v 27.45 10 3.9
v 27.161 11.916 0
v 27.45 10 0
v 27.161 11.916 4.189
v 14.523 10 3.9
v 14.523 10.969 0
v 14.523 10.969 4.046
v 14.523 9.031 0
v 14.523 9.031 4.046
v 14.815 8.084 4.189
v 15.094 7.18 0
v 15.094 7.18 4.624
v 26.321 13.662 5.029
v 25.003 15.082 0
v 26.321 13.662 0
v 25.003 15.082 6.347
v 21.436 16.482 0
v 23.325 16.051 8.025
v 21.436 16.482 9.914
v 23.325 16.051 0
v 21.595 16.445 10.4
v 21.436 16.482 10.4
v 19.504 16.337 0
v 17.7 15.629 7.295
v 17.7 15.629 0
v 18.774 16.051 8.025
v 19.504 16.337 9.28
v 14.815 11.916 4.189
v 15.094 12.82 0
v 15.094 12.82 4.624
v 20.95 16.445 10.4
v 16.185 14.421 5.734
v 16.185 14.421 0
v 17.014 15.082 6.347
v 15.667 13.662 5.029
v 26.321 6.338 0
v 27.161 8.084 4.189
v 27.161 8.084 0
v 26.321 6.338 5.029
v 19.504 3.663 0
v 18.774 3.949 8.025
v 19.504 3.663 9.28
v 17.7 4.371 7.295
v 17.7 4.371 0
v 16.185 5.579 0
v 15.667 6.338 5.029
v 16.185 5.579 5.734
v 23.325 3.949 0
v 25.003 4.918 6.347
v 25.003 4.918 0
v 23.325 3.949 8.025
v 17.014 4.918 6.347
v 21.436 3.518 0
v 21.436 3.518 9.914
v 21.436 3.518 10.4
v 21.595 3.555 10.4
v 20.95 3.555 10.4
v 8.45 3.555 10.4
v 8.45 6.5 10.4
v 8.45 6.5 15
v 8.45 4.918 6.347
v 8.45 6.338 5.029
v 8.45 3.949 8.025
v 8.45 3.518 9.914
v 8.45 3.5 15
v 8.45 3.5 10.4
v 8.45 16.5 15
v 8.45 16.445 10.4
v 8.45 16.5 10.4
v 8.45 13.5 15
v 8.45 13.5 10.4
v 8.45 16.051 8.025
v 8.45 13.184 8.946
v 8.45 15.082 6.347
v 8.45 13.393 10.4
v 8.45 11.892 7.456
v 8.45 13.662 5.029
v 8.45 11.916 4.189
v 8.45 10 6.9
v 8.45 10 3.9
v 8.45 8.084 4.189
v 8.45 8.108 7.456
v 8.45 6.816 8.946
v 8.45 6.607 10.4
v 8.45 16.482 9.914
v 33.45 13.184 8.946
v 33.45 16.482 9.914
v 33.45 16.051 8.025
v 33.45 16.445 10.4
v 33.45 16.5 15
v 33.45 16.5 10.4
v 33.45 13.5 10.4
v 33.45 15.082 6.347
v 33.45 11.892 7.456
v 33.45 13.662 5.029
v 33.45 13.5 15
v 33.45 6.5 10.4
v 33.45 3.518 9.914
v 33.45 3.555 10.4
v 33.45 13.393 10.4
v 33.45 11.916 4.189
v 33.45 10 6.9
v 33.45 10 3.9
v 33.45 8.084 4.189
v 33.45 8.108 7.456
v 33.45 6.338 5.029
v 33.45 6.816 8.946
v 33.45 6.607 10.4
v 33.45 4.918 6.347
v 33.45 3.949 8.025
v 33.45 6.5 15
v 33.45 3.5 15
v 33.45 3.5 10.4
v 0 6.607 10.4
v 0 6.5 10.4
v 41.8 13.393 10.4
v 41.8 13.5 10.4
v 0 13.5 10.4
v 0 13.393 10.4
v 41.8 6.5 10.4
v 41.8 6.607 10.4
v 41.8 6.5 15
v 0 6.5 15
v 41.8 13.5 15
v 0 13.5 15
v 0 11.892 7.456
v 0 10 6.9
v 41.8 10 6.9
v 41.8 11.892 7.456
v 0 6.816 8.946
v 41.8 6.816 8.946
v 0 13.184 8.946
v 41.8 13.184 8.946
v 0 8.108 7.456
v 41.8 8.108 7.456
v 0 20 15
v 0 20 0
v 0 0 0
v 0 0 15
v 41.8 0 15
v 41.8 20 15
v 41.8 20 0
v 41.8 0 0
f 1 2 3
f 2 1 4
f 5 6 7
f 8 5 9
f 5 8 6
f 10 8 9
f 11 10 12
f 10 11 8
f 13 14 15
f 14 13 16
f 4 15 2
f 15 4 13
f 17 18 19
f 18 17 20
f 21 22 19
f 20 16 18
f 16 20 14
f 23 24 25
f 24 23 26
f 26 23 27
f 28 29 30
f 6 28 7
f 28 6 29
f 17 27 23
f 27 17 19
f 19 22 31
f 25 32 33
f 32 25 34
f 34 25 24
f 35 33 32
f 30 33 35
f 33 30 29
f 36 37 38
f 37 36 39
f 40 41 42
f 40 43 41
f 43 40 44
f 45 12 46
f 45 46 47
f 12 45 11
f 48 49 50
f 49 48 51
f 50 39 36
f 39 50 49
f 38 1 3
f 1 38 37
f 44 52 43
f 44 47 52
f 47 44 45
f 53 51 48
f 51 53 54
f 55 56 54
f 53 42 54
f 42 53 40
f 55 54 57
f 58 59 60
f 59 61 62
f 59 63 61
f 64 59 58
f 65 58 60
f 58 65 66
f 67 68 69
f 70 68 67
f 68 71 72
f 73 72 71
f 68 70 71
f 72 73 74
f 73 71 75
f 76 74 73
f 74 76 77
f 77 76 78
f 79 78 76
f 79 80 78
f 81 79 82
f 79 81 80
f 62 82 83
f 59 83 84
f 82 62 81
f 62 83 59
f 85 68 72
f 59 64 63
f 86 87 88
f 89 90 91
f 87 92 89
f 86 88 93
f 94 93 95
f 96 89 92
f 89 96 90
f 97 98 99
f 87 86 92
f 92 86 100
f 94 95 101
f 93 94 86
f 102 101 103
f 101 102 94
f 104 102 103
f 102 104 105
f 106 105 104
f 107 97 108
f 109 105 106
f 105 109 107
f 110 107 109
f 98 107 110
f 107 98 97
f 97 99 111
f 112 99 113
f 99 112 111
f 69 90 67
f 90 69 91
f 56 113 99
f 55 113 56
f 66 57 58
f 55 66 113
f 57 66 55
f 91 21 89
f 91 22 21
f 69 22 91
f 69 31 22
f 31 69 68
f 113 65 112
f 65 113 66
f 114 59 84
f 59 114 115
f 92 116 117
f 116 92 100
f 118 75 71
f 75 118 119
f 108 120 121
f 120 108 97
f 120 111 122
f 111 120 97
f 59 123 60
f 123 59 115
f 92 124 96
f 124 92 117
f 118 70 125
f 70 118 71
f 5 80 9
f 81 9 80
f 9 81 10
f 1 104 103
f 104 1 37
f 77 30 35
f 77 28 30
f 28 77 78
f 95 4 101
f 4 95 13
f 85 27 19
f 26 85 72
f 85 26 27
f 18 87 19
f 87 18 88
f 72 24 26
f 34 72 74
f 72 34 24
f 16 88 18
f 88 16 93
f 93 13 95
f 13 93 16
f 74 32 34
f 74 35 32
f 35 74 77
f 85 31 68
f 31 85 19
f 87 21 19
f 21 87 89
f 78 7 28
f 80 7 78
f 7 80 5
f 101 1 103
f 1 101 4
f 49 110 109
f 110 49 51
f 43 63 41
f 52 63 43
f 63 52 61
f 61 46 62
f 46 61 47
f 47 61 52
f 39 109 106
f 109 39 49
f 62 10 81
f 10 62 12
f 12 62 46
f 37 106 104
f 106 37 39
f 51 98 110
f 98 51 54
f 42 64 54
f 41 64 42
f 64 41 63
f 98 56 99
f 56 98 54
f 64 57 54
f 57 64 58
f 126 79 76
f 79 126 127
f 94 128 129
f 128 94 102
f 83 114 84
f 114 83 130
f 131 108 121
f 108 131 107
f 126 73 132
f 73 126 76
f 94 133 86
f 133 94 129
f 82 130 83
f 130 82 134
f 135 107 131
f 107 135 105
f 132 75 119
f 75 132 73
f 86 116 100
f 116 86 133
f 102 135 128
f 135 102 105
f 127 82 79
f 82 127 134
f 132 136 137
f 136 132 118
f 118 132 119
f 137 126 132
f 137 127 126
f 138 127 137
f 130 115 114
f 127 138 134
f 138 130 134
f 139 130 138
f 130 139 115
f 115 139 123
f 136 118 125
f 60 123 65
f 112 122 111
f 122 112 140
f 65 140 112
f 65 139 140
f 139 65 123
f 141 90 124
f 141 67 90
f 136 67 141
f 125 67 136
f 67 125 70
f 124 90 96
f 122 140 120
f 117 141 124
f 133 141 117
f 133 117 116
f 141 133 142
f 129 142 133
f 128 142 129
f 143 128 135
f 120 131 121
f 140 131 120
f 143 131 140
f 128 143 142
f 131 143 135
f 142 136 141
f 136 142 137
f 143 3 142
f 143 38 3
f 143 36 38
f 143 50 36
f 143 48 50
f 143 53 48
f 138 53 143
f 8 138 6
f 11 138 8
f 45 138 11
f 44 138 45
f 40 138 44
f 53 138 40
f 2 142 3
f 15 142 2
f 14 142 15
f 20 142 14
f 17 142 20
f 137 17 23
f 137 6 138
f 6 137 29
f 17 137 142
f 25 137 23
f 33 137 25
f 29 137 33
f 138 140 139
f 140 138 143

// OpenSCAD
// file: ../../template/greenhouse/dripsystem_shutoff_valve_neg.scad
module dripsystem_shutoff_valve() {
    union() {
        cylinder(15, 13/2, 13/2);
        translate([-25/2,-13/2,4+13/2]) {
            cube([25, 13, 13/2]);
        }
        translate([-42/2,-7/2,4+13/2]) {
            cube([42, 7, 13/2]);
        }
        translate([-25/2,0,4 + (13/2)]) {
            rotate([0,90,0]) {
                cylinder(25, 13/2, 13/2);
            }
        }
        translate([-42/2,0,4 + (13/2)]) {
            rotate([0,90,0]) {
                cylinder(42, 7/2, 7/2);
            }
        }    
    }
}

dripsystem_shutoff_valve();
// main file
use <../../template/greenhouse/dripsystem_shutoff_valve_neg.scad>
difference() {
    cube([41.8, 20, 15]);
    translate([41.9/2, 20/2, -0.1])
        dripsystem_shutoff_valve();
}
